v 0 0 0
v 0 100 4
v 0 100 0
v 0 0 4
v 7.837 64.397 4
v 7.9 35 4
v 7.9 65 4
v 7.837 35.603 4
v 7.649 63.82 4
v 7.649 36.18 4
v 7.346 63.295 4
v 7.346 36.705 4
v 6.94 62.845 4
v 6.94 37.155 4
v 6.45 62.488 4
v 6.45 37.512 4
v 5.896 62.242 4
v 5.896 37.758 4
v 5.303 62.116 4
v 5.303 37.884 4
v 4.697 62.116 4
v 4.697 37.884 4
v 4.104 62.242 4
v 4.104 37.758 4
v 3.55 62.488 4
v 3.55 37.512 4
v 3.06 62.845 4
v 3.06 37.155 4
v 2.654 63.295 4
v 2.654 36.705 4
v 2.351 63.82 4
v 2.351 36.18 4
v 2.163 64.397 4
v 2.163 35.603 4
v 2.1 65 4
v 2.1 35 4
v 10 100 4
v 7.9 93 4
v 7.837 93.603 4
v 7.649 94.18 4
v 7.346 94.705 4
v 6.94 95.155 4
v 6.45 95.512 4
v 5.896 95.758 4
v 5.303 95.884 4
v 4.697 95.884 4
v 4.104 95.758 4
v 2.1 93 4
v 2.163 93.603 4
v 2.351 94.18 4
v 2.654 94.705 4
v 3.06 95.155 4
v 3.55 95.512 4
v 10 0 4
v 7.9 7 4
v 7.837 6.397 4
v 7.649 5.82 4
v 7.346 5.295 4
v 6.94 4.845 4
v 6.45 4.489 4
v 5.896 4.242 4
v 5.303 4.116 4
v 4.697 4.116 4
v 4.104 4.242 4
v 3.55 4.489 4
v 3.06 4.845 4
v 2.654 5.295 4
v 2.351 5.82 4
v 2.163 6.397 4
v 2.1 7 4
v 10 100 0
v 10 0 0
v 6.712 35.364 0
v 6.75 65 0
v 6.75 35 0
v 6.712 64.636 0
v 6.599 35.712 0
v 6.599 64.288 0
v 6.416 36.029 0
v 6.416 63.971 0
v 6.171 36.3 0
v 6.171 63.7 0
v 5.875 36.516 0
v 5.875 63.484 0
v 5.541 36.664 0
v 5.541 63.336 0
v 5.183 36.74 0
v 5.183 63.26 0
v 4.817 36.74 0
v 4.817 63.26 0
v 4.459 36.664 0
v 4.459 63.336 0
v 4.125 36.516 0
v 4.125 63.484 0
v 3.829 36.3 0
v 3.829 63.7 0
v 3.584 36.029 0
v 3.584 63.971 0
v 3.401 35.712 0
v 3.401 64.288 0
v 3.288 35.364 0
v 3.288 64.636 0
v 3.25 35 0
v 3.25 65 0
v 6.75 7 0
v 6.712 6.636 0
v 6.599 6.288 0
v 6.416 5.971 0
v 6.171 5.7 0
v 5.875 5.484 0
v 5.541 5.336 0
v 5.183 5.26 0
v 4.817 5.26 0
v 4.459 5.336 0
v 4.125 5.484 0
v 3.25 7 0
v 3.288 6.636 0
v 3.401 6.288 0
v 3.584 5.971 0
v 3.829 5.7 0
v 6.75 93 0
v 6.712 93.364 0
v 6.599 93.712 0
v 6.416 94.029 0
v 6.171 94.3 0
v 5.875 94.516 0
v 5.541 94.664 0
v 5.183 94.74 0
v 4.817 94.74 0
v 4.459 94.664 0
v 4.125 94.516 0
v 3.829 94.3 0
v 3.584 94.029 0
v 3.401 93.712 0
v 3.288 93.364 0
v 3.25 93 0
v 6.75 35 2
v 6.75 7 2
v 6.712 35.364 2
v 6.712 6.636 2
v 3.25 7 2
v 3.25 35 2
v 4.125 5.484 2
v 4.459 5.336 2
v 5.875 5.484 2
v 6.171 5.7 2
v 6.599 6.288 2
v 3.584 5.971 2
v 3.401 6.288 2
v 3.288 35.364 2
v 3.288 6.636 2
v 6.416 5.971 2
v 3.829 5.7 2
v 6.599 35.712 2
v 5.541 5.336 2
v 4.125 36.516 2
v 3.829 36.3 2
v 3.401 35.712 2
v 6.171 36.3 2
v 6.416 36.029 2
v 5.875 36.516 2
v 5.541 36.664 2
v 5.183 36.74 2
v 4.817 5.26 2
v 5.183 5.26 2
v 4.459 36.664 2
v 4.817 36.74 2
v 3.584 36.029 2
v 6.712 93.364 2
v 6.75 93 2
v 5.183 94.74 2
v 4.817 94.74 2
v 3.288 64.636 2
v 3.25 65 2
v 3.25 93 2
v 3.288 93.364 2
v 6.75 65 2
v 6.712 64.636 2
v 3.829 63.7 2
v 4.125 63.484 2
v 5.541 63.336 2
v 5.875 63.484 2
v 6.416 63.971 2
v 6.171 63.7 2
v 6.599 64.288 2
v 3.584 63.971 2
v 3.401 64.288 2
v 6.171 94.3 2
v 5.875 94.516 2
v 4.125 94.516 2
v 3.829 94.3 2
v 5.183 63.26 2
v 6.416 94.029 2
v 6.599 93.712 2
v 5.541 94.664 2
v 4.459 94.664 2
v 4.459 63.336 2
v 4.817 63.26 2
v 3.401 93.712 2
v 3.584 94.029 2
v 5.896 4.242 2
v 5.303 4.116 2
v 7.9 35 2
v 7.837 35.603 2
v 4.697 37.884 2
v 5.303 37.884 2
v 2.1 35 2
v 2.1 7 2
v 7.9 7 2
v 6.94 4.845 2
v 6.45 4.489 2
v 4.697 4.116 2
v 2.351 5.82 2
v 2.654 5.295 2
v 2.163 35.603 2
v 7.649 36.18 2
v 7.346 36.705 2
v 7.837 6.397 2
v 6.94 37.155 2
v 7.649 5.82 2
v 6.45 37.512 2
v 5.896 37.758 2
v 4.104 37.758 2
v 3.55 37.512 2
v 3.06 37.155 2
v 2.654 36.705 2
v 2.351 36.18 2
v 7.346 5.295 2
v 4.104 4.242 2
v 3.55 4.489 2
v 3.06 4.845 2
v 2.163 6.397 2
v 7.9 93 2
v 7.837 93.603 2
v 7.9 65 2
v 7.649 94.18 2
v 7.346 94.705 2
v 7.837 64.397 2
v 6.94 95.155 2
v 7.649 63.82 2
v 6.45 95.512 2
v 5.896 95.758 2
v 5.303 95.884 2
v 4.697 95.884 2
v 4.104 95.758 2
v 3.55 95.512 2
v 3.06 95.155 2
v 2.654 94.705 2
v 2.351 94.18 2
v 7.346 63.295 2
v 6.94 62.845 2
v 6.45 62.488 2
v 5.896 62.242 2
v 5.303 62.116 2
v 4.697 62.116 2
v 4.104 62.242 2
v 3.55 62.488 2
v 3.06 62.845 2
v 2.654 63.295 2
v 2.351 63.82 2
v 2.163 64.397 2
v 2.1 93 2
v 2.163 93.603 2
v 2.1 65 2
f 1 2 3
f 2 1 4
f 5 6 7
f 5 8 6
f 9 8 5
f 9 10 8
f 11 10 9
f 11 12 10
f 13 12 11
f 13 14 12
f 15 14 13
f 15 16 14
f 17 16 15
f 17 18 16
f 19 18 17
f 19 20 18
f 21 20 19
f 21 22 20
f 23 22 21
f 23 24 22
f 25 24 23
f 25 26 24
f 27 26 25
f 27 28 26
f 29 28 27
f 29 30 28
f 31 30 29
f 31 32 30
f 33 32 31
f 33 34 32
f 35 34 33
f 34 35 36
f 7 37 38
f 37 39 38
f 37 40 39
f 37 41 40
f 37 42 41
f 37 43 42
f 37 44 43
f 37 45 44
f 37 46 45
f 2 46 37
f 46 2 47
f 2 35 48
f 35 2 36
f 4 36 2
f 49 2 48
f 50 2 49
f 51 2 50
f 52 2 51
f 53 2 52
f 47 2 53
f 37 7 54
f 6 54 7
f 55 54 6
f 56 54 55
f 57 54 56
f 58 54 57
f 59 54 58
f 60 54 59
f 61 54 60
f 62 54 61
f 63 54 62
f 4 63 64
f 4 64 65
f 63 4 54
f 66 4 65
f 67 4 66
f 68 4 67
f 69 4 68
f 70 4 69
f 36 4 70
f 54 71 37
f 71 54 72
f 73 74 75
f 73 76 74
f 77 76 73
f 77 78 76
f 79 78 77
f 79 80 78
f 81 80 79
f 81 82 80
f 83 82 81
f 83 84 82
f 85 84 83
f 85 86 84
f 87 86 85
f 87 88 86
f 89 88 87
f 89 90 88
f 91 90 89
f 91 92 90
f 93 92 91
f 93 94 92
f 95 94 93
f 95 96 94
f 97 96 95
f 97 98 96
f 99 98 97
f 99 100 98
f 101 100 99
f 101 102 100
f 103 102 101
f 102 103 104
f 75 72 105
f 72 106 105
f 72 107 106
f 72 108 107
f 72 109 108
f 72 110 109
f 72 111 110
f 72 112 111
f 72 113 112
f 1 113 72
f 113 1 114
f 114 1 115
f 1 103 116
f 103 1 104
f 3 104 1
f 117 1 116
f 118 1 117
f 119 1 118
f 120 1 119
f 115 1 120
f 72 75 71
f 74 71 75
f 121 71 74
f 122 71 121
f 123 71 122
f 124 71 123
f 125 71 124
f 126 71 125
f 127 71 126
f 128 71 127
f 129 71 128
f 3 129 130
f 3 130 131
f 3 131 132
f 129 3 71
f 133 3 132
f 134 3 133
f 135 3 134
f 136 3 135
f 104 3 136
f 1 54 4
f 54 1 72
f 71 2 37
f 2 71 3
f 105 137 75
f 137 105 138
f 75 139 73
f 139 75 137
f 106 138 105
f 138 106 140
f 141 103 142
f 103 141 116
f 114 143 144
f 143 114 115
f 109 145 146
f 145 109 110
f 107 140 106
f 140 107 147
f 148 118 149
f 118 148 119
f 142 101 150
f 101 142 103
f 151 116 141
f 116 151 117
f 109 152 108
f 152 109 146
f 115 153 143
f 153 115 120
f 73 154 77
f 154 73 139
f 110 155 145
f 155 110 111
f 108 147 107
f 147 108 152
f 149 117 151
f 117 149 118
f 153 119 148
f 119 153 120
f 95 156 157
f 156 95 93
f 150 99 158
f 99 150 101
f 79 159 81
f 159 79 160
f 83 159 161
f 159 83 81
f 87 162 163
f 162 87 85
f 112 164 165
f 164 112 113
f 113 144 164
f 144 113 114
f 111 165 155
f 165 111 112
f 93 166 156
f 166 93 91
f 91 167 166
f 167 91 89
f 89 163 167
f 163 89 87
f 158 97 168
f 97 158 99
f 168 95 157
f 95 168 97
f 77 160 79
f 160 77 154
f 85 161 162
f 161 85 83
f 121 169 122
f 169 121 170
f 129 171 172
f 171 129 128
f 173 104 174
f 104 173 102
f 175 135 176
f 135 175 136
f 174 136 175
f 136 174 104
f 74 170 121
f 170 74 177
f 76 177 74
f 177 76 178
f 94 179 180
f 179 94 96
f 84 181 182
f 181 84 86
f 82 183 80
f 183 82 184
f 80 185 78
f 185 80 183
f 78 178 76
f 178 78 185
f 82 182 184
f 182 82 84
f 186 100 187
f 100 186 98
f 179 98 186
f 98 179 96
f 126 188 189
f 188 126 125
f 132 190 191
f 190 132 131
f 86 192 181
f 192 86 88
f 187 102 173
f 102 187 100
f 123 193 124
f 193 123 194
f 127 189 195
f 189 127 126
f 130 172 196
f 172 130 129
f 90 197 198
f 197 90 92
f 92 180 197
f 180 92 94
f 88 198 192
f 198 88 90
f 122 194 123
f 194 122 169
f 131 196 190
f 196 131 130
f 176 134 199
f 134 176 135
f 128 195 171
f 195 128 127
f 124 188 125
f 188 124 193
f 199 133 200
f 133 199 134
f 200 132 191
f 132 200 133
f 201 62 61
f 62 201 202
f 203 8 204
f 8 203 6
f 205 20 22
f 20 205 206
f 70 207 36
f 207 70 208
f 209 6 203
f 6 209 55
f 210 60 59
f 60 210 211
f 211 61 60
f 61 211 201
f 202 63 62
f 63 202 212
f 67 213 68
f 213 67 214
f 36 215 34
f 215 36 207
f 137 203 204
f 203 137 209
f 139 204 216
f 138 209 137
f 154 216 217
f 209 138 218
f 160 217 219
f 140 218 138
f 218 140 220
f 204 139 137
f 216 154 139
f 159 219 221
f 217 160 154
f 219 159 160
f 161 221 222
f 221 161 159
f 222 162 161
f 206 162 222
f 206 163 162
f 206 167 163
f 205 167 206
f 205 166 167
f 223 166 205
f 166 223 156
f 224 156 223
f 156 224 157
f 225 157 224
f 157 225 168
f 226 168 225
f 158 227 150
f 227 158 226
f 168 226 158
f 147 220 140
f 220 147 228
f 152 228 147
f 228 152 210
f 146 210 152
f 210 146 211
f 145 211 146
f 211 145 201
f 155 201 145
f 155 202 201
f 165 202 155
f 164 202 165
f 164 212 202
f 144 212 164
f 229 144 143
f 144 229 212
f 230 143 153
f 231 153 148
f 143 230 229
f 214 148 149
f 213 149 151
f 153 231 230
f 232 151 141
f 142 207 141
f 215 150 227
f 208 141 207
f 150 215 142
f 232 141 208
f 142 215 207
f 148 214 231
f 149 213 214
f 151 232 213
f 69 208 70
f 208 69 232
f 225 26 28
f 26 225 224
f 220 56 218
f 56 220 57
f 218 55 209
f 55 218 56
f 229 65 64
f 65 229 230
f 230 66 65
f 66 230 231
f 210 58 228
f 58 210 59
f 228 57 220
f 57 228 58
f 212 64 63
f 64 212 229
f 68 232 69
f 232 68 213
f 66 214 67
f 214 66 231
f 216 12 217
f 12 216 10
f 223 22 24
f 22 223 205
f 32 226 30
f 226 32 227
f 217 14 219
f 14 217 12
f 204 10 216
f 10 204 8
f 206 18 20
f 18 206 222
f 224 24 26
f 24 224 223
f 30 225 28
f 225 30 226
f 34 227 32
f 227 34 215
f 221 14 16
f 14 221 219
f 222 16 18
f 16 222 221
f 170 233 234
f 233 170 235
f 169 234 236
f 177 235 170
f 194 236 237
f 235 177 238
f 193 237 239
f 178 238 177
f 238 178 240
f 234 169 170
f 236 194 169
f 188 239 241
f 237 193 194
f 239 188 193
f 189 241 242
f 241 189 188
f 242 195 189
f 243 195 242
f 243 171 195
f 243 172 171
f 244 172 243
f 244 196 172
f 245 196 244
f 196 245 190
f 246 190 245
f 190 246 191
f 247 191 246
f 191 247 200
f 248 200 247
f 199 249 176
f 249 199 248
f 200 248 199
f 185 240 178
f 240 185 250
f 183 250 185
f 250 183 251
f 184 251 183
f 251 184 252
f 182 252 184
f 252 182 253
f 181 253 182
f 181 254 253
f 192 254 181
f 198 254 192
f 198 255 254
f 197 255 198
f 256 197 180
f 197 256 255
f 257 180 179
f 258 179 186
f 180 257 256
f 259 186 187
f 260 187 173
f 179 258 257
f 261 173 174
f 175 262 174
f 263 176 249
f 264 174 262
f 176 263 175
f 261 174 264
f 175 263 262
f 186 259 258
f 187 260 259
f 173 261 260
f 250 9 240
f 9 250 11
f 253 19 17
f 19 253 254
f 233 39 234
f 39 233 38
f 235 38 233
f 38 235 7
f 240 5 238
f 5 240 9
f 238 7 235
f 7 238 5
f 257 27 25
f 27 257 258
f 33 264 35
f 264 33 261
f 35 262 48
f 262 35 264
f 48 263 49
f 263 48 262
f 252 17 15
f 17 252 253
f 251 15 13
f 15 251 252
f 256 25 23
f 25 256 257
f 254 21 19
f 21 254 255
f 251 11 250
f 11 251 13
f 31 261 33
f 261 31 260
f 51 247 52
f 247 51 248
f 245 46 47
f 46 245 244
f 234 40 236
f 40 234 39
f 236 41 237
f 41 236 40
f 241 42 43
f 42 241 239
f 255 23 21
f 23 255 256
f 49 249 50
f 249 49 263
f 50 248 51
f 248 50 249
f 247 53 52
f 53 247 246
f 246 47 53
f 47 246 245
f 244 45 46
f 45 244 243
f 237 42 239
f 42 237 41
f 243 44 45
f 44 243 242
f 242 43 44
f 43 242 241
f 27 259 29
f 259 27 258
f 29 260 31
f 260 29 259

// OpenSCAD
$fn=30;

difference() {
    cube([10, 100, 4]);
    hull() {
        translate([5, 7, 0]) cylinder(d=3.5, h=4);
        translate([5, 35, 0]) cylinder(d=3.5, h=4);
    }
    hull() {
        translate([5, 65, 0]) cylinder(d=3.5, h=4);
        translate([5, 93, 0]) cylinder(d=3.5, h=4);
    }
    hull() {
        translate([5, 7, 2]) cylinder(d=5.8, h=4);
        translate([5, 35, 2]) cylinder(d=5.8, h=4);
    }
    hull() {
        translate([5, 65, 2]) cylinder(d=5.8, h=4);
        translate([5, 93, 2]) cylinder(d=5.8, h=4);
    }

}
